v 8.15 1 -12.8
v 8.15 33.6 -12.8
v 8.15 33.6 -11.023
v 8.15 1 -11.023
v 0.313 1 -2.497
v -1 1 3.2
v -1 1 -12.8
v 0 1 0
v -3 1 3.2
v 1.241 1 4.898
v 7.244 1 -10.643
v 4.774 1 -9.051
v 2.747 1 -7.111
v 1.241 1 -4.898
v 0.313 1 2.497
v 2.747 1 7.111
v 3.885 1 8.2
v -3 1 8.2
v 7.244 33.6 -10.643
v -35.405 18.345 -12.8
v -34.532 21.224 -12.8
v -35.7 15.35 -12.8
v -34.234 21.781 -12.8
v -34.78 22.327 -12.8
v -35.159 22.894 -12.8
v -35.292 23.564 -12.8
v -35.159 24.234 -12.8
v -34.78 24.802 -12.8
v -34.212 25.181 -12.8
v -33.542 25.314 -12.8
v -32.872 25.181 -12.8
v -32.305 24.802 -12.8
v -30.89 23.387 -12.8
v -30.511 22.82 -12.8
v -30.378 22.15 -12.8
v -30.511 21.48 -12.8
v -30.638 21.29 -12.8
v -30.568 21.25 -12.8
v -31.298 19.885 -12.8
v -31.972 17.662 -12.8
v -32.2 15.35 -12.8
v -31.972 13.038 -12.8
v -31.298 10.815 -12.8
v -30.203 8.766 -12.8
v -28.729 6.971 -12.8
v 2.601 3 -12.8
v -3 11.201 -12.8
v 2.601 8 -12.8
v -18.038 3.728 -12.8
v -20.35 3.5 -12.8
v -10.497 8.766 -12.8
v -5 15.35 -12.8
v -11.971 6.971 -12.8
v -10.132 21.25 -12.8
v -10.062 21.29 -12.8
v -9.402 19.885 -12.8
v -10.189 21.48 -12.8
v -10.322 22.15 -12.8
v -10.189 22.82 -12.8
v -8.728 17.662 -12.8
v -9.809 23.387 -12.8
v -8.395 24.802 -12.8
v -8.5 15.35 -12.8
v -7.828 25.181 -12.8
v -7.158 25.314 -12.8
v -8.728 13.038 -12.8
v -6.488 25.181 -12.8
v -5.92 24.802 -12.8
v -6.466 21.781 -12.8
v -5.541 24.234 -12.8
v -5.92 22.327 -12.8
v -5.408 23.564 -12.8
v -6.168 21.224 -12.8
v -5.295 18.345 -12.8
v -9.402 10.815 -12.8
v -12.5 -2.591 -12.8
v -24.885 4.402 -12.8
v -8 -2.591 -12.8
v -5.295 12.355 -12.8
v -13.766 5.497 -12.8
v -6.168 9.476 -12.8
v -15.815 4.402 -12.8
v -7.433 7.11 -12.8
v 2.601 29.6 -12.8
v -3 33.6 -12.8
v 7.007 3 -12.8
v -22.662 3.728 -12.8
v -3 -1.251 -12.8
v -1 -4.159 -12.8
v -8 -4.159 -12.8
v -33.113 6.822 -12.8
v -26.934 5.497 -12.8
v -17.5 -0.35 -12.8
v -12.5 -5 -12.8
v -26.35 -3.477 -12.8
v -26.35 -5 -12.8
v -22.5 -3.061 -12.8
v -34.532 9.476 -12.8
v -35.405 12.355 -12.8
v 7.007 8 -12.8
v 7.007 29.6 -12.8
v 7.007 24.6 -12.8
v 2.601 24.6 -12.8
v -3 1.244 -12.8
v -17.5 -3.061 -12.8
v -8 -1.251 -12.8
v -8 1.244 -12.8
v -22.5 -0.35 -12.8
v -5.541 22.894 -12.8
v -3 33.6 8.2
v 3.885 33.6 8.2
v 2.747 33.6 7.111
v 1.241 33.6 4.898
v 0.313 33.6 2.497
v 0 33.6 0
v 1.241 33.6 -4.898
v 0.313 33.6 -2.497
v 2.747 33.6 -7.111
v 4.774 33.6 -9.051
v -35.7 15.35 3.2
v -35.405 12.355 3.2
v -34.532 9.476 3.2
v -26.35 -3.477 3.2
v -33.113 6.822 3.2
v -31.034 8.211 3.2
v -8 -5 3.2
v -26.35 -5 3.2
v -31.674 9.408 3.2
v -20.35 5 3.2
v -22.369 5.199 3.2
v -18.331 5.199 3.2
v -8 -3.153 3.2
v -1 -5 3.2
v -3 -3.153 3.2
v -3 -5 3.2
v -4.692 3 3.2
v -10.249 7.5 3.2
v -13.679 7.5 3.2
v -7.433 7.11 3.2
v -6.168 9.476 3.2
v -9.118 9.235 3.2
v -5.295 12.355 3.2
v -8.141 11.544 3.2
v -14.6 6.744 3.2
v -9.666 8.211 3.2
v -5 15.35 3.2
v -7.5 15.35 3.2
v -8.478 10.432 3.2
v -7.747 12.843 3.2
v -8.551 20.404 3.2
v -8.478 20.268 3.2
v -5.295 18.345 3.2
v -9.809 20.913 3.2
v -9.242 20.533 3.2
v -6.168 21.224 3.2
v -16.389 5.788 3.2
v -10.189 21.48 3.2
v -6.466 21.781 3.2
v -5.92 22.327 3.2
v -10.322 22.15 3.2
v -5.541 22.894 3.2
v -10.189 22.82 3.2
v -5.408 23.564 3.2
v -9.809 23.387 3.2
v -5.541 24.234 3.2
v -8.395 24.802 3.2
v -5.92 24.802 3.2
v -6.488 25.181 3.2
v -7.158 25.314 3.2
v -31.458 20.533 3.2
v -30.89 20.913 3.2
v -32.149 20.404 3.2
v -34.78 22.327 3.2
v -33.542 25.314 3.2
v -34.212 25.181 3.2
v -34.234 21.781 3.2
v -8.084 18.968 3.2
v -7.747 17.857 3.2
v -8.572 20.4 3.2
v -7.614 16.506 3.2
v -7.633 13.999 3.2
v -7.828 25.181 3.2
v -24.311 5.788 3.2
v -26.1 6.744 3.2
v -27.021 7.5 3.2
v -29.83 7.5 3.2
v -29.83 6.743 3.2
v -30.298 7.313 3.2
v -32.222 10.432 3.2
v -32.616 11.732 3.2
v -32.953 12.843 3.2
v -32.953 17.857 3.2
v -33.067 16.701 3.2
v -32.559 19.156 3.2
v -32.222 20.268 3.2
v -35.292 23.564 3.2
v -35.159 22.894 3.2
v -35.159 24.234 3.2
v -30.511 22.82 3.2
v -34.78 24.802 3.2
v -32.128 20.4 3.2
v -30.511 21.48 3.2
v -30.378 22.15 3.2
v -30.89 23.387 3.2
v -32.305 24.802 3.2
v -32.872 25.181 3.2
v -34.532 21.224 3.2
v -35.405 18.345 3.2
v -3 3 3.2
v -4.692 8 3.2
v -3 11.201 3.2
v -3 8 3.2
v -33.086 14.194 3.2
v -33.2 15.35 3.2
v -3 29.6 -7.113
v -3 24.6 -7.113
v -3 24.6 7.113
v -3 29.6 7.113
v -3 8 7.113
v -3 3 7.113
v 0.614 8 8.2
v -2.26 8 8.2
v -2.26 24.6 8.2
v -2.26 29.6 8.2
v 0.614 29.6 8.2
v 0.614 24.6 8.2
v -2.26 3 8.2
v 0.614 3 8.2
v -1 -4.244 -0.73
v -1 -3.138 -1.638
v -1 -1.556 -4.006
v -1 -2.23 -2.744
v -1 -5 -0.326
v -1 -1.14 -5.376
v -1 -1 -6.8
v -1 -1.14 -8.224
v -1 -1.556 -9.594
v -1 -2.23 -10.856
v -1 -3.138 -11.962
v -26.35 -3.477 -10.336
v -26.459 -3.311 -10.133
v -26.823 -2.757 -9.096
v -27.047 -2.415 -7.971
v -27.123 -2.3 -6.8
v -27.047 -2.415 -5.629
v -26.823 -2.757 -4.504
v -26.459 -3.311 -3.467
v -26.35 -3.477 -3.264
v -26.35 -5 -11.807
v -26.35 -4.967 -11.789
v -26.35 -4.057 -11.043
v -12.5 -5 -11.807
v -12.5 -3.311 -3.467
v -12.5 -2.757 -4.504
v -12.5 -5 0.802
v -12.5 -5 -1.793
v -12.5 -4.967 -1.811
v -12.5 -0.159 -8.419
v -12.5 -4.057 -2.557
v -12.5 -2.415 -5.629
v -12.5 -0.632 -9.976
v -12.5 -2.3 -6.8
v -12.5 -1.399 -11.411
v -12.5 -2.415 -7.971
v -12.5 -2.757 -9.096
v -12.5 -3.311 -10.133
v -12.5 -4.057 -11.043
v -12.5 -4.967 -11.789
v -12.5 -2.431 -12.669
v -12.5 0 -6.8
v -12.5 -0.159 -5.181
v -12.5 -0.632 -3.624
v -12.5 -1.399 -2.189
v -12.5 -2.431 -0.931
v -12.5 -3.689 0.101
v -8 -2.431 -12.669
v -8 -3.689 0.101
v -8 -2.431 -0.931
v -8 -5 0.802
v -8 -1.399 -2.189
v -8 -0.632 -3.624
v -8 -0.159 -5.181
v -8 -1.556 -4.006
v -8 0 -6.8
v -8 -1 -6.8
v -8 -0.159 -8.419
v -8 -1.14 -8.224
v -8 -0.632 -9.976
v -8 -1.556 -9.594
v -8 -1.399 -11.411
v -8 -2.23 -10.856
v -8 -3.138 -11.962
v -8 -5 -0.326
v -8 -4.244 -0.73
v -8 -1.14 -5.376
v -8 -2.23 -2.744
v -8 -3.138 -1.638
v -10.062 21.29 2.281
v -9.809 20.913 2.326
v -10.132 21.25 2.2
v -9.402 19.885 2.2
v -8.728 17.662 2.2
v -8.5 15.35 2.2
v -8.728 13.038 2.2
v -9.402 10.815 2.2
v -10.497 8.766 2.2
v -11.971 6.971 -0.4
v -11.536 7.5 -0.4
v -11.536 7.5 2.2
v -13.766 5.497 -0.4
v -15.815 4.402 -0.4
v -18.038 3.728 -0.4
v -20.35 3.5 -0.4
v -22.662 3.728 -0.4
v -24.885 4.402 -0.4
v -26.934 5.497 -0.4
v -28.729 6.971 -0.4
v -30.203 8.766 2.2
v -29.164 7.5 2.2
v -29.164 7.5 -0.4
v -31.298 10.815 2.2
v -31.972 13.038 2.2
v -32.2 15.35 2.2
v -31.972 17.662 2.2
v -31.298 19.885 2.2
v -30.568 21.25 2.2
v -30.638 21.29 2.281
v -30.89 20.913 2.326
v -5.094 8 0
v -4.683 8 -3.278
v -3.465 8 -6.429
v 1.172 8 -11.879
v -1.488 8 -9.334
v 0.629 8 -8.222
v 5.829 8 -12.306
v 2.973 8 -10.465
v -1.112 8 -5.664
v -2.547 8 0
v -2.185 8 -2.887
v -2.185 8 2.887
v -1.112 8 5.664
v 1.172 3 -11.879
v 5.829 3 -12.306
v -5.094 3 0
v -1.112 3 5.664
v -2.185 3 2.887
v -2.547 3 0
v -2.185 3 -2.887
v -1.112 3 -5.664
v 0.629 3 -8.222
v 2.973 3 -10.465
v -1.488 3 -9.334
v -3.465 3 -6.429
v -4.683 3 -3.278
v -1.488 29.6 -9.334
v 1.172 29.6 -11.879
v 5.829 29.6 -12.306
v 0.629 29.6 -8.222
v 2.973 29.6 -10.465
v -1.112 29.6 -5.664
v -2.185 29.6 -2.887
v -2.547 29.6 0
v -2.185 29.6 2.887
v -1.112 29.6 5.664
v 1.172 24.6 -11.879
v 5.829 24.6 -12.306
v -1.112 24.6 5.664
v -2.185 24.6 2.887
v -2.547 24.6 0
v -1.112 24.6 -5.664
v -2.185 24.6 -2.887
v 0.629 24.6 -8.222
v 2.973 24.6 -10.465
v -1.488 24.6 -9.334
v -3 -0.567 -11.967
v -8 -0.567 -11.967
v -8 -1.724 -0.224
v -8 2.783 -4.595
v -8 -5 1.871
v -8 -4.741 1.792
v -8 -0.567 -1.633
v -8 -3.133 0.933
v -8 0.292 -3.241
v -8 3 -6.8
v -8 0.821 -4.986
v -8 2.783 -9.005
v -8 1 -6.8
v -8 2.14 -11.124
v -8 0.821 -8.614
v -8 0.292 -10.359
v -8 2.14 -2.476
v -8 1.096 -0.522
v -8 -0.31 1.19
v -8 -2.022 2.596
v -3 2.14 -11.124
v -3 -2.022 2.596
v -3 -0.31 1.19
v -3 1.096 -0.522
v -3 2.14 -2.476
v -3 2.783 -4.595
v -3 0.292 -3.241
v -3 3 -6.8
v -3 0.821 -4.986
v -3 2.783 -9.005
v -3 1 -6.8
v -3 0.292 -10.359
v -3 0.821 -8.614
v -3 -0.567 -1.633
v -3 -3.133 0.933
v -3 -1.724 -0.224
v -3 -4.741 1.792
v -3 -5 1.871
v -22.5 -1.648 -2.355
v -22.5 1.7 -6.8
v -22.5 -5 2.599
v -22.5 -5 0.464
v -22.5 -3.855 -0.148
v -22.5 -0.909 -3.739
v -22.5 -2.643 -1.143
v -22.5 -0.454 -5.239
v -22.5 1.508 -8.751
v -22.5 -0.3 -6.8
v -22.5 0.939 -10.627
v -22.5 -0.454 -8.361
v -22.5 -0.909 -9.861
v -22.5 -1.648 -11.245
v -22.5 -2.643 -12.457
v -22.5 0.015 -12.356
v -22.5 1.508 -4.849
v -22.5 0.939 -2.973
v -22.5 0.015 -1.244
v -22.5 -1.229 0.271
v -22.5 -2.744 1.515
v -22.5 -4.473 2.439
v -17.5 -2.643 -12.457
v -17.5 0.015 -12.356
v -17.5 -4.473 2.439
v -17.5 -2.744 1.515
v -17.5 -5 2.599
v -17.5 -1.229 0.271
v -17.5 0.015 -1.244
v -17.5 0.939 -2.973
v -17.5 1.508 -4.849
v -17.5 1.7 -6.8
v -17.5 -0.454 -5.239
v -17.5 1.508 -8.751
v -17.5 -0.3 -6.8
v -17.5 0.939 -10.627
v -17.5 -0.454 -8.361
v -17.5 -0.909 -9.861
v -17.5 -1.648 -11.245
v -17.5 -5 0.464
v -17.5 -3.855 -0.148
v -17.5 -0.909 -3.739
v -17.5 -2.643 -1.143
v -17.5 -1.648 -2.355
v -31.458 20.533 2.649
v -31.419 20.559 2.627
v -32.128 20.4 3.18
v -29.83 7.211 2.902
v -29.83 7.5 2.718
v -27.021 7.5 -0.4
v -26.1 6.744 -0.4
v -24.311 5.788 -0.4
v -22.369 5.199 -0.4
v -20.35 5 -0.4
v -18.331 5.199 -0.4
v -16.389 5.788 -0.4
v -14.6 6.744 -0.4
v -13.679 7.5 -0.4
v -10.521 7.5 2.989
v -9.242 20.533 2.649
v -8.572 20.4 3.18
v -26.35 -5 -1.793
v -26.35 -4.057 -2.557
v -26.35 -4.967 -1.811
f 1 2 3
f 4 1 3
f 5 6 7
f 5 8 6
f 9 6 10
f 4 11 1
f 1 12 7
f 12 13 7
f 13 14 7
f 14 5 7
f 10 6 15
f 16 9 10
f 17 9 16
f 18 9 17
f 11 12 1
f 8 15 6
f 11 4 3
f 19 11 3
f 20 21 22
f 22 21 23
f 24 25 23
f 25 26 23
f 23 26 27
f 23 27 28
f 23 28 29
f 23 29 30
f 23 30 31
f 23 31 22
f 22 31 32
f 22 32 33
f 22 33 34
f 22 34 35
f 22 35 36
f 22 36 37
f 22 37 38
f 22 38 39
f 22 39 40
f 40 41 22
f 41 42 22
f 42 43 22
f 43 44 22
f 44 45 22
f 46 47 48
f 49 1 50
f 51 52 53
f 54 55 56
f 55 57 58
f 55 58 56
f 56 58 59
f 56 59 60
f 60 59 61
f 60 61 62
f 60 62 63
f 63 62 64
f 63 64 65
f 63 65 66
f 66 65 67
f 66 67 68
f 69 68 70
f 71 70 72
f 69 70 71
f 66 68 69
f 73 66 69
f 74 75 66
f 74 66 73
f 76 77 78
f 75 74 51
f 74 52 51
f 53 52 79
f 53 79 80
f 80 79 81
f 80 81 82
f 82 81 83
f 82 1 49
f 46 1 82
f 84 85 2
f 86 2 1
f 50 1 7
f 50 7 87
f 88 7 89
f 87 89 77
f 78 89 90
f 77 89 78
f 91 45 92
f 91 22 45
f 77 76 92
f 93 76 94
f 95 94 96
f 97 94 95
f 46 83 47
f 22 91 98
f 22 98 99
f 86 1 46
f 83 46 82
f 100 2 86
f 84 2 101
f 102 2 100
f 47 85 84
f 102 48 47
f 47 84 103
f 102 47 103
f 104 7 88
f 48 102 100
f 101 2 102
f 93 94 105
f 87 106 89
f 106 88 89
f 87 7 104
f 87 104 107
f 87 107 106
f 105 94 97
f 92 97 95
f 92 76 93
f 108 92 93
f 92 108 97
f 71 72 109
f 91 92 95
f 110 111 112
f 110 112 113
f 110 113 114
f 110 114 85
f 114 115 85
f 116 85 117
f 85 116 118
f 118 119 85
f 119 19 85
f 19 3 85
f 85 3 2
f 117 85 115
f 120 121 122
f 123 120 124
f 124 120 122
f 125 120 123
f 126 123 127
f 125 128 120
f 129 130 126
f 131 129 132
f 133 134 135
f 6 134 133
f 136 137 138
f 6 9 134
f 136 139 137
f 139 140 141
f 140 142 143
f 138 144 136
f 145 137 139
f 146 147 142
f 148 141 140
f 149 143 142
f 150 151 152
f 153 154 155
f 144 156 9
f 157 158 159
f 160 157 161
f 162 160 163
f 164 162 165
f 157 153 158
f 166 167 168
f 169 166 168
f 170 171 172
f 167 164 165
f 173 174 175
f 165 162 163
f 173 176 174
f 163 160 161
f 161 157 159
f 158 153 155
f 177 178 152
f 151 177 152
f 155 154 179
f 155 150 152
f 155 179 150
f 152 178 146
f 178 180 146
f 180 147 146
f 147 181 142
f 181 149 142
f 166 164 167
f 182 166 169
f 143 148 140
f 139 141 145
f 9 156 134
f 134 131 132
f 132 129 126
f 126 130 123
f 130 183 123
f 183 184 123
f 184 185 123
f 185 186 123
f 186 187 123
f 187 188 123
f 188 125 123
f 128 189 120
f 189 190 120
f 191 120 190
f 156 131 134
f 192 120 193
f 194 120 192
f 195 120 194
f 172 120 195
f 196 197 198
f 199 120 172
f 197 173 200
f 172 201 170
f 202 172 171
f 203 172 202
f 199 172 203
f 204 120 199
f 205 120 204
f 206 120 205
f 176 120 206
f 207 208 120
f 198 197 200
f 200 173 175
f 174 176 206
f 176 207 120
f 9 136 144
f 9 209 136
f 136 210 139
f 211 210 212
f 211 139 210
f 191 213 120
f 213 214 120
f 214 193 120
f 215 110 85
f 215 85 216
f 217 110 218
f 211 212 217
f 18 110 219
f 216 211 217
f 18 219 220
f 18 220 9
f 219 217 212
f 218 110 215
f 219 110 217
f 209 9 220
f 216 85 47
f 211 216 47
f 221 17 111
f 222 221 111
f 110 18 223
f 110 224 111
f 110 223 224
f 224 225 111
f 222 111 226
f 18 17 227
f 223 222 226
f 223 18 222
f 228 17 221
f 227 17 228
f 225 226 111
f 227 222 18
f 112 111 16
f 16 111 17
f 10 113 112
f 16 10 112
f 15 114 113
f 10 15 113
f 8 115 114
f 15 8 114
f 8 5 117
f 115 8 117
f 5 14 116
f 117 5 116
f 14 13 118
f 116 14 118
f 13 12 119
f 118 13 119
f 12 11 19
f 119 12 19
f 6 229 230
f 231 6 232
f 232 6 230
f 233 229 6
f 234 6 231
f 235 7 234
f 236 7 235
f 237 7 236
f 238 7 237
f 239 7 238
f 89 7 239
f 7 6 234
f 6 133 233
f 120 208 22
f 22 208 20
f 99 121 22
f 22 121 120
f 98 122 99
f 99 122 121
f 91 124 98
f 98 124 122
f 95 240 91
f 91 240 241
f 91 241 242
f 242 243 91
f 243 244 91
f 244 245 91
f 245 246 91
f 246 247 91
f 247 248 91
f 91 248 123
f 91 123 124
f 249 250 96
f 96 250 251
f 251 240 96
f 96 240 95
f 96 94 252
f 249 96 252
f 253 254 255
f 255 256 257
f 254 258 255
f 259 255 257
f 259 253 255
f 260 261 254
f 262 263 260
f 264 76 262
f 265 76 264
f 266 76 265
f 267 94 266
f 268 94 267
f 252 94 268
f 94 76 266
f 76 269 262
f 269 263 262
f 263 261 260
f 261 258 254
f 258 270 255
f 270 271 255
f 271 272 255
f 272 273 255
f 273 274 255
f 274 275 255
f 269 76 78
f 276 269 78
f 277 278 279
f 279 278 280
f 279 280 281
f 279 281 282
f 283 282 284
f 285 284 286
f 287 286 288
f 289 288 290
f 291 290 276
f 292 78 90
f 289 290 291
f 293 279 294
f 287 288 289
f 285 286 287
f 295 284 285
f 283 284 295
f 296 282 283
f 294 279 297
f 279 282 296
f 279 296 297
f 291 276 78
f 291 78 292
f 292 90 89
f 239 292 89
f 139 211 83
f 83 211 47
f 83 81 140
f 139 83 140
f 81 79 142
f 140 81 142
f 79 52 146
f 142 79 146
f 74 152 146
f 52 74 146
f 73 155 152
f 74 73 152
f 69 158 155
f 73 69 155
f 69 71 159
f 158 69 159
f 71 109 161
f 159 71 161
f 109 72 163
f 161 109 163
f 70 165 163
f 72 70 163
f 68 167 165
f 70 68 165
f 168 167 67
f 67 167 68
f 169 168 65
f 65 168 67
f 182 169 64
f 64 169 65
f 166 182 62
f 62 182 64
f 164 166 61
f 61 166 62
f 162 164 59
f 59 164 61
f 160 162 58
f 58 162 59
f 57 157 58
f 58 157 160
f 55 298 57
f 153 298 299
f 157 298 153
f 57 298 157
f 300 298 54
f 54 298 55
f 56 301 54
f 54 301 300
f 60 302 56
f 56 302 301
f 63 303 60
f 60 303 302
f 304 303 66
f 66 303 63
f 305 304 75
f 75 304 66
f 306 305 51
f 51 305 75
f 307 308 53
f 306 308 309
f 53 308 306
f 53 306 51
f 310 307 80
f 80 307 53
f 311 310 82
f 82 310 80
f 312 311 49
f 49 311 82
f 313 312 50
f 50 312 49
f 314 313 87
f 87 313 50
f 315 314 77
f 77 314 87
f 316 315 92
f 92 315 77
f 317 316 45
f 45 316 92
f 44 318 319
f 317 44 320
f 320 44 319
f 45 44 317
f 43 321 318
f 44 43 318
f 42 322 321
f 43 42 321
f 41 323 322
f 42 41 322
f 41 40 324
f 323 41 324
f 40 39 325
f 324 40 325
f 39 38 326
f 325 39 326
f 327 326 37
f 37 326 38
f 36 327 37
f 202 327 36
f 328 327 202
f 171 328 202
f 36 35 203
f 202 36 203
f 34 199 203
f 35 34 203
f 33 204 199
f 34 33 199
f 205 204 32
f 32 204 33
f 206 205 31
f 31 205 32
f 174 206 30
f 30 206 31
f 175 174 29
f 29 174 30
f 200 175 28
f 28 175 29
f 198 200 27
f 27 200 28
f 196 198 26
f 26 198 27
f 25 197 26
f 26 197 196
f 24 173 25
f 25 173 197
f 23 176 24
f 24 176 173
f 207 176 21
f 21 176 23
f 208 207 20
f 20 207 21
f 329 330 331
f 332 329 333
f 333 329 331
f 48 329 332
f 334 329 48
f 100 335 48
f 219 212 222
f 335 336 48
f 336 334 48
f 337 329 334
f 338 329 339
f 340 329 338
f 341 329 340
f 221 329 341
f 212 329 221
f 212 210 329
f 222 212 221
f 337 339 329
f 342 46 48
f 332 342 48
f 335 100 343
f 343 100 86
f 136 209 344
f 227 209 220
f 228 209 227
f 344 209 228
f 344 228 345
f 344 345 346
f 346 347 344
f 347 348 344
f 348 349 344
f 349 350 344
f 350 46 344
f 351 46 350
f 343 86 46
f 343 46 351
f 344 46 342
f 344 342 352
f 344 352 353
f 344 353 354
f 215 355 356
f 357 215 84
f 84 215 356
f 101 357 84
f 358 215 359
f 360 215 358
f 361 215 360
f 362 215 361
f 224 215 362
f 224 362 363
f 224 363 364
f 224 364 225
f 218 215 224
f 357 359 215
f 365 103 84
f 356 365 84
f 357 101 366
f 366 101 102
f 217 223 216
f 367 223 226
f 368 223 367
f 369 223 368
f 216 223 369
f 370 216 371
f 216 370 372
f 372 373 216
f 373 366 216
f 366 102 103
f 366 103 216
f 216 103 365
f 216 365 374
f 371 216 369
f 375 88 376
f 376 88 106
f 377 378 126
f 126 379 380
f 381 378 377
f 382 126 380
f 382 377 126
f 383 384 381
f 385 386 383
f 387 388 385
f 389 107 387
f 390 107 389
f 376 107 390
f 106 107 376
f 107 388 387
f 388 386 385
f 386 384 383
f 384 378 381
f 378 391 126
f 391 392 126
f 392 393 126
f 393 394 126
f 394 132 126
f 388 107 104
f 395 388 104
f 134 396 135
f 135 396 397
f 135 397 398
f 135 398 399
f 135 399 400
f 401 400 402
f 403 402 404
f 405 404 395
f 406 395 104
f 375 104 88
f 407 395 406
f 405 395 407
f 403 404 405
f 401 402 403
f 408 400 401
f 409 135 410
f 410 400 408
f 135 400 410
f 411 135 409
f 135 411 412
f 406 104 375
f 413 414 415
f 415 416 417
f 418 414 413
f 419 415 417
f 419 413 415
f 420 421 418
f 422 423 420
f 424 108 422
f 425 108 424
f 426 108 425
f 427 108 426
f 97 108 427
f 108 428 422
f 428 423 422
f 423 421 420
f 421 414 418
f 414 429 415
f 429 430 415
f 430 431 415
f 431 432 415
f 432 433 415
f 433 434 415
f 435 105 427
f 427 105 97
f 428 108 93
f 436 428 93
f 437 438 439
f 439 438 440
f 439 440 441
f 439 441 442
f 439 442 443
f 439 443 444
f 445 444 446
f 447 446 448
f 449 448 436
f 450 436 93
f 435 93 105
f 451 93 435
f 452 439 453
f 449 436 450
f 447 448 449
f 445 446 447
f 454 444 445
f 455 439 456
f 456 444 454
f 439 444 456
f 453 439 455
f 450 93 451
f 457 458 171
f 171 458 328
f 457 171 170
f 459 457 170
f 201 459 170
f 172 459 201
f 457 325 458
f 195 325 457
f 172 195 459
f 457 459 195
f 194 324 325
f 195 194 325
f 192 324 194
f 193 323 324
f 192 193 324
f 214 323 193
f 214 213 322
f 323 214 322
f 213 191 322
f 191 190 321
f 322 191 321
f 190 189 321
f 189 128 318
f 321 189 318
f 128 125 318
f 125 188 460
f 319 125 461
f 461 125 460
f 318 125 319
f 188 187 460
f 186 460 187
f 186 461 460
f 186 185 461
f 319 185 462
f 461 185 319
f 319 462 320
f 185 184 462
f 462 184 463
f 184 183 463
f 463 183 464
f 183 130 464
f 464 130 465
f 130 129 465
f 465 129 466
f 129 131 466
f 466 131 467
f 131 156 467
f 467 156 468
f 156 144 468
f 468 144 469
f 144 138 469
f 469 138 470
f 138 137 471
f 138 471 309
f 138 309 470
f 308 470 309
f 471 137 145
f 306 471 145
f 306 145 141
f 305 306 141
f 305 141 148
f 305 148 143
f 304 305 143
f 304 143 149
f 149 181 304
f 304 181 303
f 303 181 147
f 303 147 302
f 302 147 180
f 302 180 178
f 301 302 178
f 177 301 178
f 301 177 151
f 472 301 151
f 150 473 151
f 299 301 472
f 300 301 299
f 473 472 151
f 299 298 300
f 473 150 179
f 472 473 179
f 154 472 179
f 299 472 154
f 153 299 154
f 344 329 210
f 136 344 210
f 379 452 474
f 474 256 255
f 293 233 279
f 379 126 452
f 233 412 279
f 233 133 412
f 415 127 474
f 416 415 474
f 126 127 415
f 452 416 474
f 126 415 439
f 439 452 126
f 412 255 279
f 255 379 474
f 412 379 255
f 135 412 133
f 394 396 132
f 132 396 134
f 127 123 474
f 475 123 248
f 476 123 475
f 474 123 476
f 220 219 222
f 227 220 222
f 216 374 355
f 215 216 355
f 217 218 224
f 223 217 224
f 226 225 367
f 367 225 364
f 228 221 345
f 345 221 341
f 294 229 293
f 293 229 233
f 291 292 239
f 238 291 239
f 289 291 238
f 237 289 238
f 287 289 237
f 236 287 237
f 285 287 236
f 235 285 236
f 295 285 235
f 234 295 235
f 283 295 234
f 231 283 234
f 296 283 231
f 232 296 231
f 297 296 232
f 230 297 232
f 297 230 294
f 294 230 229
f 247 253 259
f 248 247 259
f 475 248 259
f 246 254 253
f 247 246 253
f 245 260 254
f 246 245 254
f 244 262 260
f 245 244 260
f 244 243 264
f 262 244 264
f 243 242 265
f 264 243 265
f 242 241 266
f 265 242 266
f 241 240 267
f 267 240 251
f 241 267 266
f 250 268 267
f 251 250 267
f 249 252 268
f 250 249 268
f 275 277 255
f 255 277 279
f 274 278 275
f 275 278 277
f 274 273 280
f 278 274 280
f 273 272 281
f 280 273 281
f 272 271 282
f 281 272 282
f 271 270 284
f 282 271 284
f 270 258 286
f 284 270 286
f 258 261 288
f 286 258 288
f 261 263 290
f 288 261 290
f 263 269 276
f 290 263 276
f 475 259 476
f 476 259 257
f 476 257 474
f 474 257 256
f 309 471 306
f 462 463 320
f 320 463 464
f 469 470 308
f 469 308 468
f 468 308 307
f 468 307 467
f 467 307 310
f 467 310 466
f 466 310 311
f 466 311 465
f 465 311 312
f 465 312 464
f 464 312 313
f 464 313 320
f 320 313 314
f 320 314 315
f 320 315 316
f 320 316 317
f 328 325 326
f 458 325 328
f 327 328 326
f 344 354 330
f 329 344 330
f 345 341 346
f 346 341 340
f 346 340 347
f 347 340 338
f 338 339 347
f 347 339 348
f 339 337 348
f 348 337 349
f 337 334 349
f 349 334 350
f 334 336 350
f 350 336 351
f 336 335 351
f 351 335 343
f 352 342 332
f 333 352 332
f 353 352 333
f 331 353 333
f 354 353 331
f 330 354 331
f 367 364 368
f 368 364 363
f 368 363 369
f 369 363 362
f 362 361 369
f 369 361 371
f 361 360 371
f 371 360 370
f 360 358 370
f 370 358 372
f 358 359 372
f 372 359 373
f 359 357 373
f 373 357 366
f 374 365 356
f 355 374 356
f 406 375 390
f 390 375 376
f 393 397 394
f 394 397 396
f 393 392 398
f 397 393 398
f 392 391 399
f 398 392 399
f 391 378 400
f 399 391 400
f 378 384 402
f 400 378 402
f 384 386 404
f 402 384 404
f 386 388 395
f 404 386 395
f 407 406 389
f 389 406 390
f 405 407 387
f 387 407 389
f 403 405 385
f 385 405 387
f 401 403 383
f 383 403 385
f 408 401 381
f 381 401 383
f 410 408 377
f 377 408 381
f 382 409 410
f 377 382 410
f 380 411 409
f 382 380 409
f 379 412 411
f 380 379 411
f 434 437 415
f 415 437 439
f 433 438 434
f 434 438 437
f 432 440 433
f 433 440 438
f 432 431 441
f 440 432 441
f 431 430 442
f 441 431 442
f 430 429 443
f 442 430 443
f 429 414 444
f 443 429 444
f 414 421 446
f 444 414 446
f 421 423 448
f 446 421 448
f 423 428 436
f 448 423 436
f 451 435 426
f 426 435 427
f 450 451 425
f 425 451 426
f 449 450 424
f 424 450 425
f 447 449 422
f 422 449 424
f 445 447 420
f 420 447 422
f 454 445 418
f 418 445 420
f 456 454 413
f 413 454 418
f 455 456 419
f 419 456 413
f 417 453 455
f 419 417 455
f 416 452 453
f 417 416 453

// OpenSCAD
// file: ../standard_optomechanics/cylinder_clamp.scad
use <../utilities.scad>;
d=0.05;

//for 1 inch/25mm post clamp, an inner radius of 12.8 is good.
	
module cylinder_clamp(
	inner_r=12.8, //radius of the cylinder being clamped (ish!)
	clamp_h=11, //thicknedess of the clamp along the cylinder axis
	clamp_t=4, //thickness of the clamp radially
	flat_t=8, //how thick the bottom of the clamp is (often need to allow for the mounting bolt head here)
	flat_width=15, //width of the flat base
	mounting_bolt=4, //nominal size of mounting bolt (default is 4 for M4, 0 to disable)
	nut_trap=false,
	bevel_top=0.5, //size of 45 degree bevel on top surface
	bevel_bottom=0.8 //size of 45 degree bevel on bottom of hole
	){
	assign(
		post_r = inner_r, //poor initial choice of name!
		bolt_flat_w=10, //width of the region where the bolt is
		gap_w=3 //size of the gap that is squeezed by the bolt
	)
	difference(){
		hull(){
			cylinder(h=clamp_h,r=post_r+clamp_t,center=true,$fn=48);
			translate([0,-post_r-flat_t/2,0]) cube([flat_width,flat_t,clamp_h],center=true);
			translate([0,post_r+bolt_flat_w/2,0]) cube([12,bolt_flat_w,clamp_h],center=true);
		}
	
		cylinder(h=9999,r=post_r,center=true,$fn=48); //cylinder being clamped
		//bevels, top and bottom
		translate([0,0,-clamp_h/2]) cylinder(r1=post_r+3*bevel_bottom,r2=post_r-bevel_bottom,h=4*bevel_bottom,center=true);
		translate([0,0,clamp_h/2]) cylinder(r2=post_r+3*bevel_top,r1=post_r-bevel_top,h=4*bevel_top,center=true);
		//gap (squeezed by bolt)
		translate([0,999,0]) cube([gap_w,999*2,999],center=true); //gap
	
		//clamping bolt
		translate([gap_w/2+2,post_r+bolt_flat_w/2,0]) rotate([0,0,-90]) nut_y(4,h=999,shaft=true);
		translate([-gap_w/2-2,post_r+bolt_flat_w/2,0]) rotate([0,0,90]) cylinder_with_45deg_top(r=4,h=999,$fn=16); //counterbore for nut head
	
		if(mounting_bolt > 0){
			//mounting bolt
			translate([0,-post_r-4.5,0]) rotate([-90,0,0]){
				intersection(){
					rotate([90,0,0])
						if(nut_trap){
							nut_y(mounting_bolt,fudge=1.15,shaft=true,h=999);
						}else{
							screw_y(mounting_bolt,fudge=1.07,shaft=true,h=999);
						}
					cube([inner_r*2,inner_r*2,clamp_h*2],center=true);
				}
			}
		}
		//in the case of thick clamps with thin flats, this keeps the bottom flat
		translate([0,-inner_r-flat_t-999,0]) cube([9999,999*2,9999],center=true);
	}
}

module cylinder_clamp_v(
	inner_r=12.8, //radius of the cylinder being clamped (ish!)
	clamp_h=10, //width of the clamp along the cylinder (y) axis
	clamp_t=4, //thickness of the clamp radially
	flat_t=8, //how thick the bottom of the clamp is (often need to allow for the mounting bolt head here)
	flat_width=15, //width of the flat base
	mounting_bolt=4, //nominal size of mounting bolt (default is 4 for M4, 0 to disable)
	bevel=0.5 //put a 45 degree bevel on the edges of the hole
	){
	assign(
		post_r = inner_r, //poor initial choice of name!
		bolt_flat_w=11, //width of the region where the bolt is
		gap_w=2*inner_r*sin(45/2),//sin(acos(1-(9/2-4/2*1.22)/inner_r))*inner_r //size of the gap that is squeezed by the bolt
		bolt_z = inner_r+4/2*1.22+d //position of bolt (so bolt just clears the cylinder we're clamping
	)assign( //the second assign statement allows us to use gap_w
		bolt_span=gap_w+4+d//max(2*inner_r*sin(acos(1-(9/2-4/2*1.22)/inner_r)), gap_w+4)
	)
	difference(){
		hull(){
			rotate([90,0,0]) cylinder(h=clamp_h,r=inner_r+clamp_t,center=true,$fn=48);
			translate([0,0,-inner_r-flat_t/2]) cube([flat_width,clamp_h,flat_t],center=true);
			translate([0,0,bolt_z]) cube([gap_w+9,clamp_h,bolt_flat_w],center=true);
		}
	
		cylinder_with_45deg_top(h=9999,r=post_r,center=true,$fn=48); //cylinder being clamped
		reflect([0,1,0]) translate([0,clamp_h/2,0]) rotate([90,0,0]) cylinder(r1=post_r+3*bevel,r2=post_r-bevel,h=4*bevel,center=true); //bevel
		translate([0,0,999]) cube([gap_w,999,999*2],center=true); //gap
	
		//clamping bolt
		translate([bolt_span/2,0,bolt_z]) rotate([0,0,-90]) nut_y(4,h=999,shaft=true);
		translate([-bolt_span/2,0,bolt_z]) rotate([0,0,90]) cylinder_with_45deg_top(r=4,h=999,$fn=16); //counterbore for nut head
	
		if(mounting_bolt > 0){
			//mounting bolt
			translate([0,0,-post_r-4.5]){
				cylinder(r=mounting_bolt*1.1,h=post_r,$fn=16);
				cylinder(r=mounting_bolt/2*1.22,h=flat_t*2,center=true,$fn=16);
			}
		}
		translate([0,0,-inner_r-flat_t-999]) cube([9999,9999,999*2],center=true);
	}
}

translate([0,30,0]) cylinder_clamp_v(30.5/2, 10, flat_width=24, mounting_bolt=4, flat_t=8);

cylinder_clamp(30.5/2, flat_width=24, mounting_bolt=4, flat_t=8,nut_trap=true);
// file: cylinder_clip.scad
use <../utilities.scad>;

module cylinder_clip(r=1,t=3,opening_angle=120,wing_length=2,wing_angle=45,flat_w=10,flat_t=3,h=10,$fn=$fn){
	union(){
		difference(){
			hull(){
				cylinder(r=r+t,$fn=$fn,h=h);
				translate([-flat_w/2,-r-flat_t,0]) cube([flat_w,0.1,h]);
			}
			cylinder(r=r,$fn=$fn,h=99999,center=true);
			cylinder(r1=r+2,r2=r,$fn=$fn,h=2,center=true);
			scale([tan(opening_angle/2),1,1]) rotate([0,0,45]) translate([0,0,-1]) cube([1,1,1]*9999);
		}
		reflect([1,0,0]) translate([sin(opening_angle/2),cos(opening_angle/2),0]*(r+t/2)) hull() repeat([sin(wing_angle),cos(wing_angle),0]*wing_length,2)
			cylinder(r=t/2,h=h,$fn=16);
			
	}
}

//cylinder_clip(r=3,t=2,flat_w=6);
union(){
	cylinder_clip(r=21,t=4.5,flat_t=10,opening_angle=100,$fn=64);
	translate([-5,-22-5-20,0]) cube([10,20,10]);
}
// main file
use <../utilities.scad>;
use <./cylinder_clip.scad>;
use <../standard_optomechanics/cylinder_clamp.scad>;

socket_radius = 24.3/2-0.3;
clip_t = 3.5;
vbrake_mount_r2 = 11.6/2+0.2;
vbrake_mount_r1 = 14/2+0.3;
corner_clearance = 1;
vbrake_mount_l1 = 8;
vbrake_mount_l2 = 20;
vbrake_mount_lip_l = 4.5;
clip_h = 16;
fork = [32.6,25.6];
base_z = fork[1]/2-clip_h; //in original this was -fork[1]/2+1
mount_h = clip_h;
reinforcement = [13,12];
$fn=32;
d=0.05;

module annulus(inner_r,thickness,h){
	difference(){
		cylinder(r=inner_r+thickness,h=h);
		cylinder(r=inner_r,h=99999,center=true);
	}
}
module cable_tie(inner_r){
	annulus(inner_r+2,2,5);
}

mirror([0,0,1])mirror([1,0,0])
difference(){
	union(){
		translate([socket_radius+clip_t+5,socket_radius+clip_t,base_z]) cylinder_clip(r=socket_radius, t=clip_t,flat_w=10,flat_t=clip_t+5,h=clip_h);
		translate([corner_clearance,-5,base_z]) cube([socket_radius+clip_t+10,5+clip_t,mount_h]); //attachment to V brake mount
		translate([-fork[0]/4,corner_clearance,base_z-5]) cube([fork[0]/4+3,fork[0],mount_h+5]); //attachment to fork
		translate([corner_clearance,corner_clearance,base_z]) hull(){
			cube([reinforcement[0],d,mount_h]);
			cube([d,reinforcement[1],mount_h]);
		}
		translate([clip_t+5,clip_t,base_z]) cube([socket_radius*1.8,4,3.6]);
	}

	// Pedal mount
	translate([socket_radius+clip_t+5,socket_radius+clip_t,0]) cylinder(r=socket_radius-1.5,h=999,center=true);

	//////////// Fork
	translate([-fork[0]/2,0,0]) rotate([-90,0,0]) scale([fork[0]/fork[1],1,1]){
		cylinder(r=fork[1]/2,h=999,center=true);
		translate([0,0,3]) cable_tie(fork[1]/2);
		translate([0,0,fork[0]-8]) cable_tie(fork[1]/2);
	}

	//////////// V brake mount
	translate([0,-vbrake_mount_r1-1,fork[1]/2-vbrake_mount_r2]) rotate([0,90,0]){
		cylinder(r=vbrake_mount_r1,h=vbrake_mount_l1+d);
		translate([0,0,vbrake_mount_l1]) cylinder(r=vbrake_mount_r1+1,h=vbrake_mount_lip_l);
		translate([0,0,vbrake_mount_l1+vbrake_mount_lip_l]) cylinder(r=vbrake_mount_r2,h=vbrake_mount_l2);
		// Cable tie points
		translate([0,0,vbrake_mount_l1-5]) cable_tie(vbrake_mount_r1);
		translate([0,0,vbrake_mount_l1+vbrake_mount_lip_l+5]) cable_tie(vbrake_mount_r2);
	}
}
